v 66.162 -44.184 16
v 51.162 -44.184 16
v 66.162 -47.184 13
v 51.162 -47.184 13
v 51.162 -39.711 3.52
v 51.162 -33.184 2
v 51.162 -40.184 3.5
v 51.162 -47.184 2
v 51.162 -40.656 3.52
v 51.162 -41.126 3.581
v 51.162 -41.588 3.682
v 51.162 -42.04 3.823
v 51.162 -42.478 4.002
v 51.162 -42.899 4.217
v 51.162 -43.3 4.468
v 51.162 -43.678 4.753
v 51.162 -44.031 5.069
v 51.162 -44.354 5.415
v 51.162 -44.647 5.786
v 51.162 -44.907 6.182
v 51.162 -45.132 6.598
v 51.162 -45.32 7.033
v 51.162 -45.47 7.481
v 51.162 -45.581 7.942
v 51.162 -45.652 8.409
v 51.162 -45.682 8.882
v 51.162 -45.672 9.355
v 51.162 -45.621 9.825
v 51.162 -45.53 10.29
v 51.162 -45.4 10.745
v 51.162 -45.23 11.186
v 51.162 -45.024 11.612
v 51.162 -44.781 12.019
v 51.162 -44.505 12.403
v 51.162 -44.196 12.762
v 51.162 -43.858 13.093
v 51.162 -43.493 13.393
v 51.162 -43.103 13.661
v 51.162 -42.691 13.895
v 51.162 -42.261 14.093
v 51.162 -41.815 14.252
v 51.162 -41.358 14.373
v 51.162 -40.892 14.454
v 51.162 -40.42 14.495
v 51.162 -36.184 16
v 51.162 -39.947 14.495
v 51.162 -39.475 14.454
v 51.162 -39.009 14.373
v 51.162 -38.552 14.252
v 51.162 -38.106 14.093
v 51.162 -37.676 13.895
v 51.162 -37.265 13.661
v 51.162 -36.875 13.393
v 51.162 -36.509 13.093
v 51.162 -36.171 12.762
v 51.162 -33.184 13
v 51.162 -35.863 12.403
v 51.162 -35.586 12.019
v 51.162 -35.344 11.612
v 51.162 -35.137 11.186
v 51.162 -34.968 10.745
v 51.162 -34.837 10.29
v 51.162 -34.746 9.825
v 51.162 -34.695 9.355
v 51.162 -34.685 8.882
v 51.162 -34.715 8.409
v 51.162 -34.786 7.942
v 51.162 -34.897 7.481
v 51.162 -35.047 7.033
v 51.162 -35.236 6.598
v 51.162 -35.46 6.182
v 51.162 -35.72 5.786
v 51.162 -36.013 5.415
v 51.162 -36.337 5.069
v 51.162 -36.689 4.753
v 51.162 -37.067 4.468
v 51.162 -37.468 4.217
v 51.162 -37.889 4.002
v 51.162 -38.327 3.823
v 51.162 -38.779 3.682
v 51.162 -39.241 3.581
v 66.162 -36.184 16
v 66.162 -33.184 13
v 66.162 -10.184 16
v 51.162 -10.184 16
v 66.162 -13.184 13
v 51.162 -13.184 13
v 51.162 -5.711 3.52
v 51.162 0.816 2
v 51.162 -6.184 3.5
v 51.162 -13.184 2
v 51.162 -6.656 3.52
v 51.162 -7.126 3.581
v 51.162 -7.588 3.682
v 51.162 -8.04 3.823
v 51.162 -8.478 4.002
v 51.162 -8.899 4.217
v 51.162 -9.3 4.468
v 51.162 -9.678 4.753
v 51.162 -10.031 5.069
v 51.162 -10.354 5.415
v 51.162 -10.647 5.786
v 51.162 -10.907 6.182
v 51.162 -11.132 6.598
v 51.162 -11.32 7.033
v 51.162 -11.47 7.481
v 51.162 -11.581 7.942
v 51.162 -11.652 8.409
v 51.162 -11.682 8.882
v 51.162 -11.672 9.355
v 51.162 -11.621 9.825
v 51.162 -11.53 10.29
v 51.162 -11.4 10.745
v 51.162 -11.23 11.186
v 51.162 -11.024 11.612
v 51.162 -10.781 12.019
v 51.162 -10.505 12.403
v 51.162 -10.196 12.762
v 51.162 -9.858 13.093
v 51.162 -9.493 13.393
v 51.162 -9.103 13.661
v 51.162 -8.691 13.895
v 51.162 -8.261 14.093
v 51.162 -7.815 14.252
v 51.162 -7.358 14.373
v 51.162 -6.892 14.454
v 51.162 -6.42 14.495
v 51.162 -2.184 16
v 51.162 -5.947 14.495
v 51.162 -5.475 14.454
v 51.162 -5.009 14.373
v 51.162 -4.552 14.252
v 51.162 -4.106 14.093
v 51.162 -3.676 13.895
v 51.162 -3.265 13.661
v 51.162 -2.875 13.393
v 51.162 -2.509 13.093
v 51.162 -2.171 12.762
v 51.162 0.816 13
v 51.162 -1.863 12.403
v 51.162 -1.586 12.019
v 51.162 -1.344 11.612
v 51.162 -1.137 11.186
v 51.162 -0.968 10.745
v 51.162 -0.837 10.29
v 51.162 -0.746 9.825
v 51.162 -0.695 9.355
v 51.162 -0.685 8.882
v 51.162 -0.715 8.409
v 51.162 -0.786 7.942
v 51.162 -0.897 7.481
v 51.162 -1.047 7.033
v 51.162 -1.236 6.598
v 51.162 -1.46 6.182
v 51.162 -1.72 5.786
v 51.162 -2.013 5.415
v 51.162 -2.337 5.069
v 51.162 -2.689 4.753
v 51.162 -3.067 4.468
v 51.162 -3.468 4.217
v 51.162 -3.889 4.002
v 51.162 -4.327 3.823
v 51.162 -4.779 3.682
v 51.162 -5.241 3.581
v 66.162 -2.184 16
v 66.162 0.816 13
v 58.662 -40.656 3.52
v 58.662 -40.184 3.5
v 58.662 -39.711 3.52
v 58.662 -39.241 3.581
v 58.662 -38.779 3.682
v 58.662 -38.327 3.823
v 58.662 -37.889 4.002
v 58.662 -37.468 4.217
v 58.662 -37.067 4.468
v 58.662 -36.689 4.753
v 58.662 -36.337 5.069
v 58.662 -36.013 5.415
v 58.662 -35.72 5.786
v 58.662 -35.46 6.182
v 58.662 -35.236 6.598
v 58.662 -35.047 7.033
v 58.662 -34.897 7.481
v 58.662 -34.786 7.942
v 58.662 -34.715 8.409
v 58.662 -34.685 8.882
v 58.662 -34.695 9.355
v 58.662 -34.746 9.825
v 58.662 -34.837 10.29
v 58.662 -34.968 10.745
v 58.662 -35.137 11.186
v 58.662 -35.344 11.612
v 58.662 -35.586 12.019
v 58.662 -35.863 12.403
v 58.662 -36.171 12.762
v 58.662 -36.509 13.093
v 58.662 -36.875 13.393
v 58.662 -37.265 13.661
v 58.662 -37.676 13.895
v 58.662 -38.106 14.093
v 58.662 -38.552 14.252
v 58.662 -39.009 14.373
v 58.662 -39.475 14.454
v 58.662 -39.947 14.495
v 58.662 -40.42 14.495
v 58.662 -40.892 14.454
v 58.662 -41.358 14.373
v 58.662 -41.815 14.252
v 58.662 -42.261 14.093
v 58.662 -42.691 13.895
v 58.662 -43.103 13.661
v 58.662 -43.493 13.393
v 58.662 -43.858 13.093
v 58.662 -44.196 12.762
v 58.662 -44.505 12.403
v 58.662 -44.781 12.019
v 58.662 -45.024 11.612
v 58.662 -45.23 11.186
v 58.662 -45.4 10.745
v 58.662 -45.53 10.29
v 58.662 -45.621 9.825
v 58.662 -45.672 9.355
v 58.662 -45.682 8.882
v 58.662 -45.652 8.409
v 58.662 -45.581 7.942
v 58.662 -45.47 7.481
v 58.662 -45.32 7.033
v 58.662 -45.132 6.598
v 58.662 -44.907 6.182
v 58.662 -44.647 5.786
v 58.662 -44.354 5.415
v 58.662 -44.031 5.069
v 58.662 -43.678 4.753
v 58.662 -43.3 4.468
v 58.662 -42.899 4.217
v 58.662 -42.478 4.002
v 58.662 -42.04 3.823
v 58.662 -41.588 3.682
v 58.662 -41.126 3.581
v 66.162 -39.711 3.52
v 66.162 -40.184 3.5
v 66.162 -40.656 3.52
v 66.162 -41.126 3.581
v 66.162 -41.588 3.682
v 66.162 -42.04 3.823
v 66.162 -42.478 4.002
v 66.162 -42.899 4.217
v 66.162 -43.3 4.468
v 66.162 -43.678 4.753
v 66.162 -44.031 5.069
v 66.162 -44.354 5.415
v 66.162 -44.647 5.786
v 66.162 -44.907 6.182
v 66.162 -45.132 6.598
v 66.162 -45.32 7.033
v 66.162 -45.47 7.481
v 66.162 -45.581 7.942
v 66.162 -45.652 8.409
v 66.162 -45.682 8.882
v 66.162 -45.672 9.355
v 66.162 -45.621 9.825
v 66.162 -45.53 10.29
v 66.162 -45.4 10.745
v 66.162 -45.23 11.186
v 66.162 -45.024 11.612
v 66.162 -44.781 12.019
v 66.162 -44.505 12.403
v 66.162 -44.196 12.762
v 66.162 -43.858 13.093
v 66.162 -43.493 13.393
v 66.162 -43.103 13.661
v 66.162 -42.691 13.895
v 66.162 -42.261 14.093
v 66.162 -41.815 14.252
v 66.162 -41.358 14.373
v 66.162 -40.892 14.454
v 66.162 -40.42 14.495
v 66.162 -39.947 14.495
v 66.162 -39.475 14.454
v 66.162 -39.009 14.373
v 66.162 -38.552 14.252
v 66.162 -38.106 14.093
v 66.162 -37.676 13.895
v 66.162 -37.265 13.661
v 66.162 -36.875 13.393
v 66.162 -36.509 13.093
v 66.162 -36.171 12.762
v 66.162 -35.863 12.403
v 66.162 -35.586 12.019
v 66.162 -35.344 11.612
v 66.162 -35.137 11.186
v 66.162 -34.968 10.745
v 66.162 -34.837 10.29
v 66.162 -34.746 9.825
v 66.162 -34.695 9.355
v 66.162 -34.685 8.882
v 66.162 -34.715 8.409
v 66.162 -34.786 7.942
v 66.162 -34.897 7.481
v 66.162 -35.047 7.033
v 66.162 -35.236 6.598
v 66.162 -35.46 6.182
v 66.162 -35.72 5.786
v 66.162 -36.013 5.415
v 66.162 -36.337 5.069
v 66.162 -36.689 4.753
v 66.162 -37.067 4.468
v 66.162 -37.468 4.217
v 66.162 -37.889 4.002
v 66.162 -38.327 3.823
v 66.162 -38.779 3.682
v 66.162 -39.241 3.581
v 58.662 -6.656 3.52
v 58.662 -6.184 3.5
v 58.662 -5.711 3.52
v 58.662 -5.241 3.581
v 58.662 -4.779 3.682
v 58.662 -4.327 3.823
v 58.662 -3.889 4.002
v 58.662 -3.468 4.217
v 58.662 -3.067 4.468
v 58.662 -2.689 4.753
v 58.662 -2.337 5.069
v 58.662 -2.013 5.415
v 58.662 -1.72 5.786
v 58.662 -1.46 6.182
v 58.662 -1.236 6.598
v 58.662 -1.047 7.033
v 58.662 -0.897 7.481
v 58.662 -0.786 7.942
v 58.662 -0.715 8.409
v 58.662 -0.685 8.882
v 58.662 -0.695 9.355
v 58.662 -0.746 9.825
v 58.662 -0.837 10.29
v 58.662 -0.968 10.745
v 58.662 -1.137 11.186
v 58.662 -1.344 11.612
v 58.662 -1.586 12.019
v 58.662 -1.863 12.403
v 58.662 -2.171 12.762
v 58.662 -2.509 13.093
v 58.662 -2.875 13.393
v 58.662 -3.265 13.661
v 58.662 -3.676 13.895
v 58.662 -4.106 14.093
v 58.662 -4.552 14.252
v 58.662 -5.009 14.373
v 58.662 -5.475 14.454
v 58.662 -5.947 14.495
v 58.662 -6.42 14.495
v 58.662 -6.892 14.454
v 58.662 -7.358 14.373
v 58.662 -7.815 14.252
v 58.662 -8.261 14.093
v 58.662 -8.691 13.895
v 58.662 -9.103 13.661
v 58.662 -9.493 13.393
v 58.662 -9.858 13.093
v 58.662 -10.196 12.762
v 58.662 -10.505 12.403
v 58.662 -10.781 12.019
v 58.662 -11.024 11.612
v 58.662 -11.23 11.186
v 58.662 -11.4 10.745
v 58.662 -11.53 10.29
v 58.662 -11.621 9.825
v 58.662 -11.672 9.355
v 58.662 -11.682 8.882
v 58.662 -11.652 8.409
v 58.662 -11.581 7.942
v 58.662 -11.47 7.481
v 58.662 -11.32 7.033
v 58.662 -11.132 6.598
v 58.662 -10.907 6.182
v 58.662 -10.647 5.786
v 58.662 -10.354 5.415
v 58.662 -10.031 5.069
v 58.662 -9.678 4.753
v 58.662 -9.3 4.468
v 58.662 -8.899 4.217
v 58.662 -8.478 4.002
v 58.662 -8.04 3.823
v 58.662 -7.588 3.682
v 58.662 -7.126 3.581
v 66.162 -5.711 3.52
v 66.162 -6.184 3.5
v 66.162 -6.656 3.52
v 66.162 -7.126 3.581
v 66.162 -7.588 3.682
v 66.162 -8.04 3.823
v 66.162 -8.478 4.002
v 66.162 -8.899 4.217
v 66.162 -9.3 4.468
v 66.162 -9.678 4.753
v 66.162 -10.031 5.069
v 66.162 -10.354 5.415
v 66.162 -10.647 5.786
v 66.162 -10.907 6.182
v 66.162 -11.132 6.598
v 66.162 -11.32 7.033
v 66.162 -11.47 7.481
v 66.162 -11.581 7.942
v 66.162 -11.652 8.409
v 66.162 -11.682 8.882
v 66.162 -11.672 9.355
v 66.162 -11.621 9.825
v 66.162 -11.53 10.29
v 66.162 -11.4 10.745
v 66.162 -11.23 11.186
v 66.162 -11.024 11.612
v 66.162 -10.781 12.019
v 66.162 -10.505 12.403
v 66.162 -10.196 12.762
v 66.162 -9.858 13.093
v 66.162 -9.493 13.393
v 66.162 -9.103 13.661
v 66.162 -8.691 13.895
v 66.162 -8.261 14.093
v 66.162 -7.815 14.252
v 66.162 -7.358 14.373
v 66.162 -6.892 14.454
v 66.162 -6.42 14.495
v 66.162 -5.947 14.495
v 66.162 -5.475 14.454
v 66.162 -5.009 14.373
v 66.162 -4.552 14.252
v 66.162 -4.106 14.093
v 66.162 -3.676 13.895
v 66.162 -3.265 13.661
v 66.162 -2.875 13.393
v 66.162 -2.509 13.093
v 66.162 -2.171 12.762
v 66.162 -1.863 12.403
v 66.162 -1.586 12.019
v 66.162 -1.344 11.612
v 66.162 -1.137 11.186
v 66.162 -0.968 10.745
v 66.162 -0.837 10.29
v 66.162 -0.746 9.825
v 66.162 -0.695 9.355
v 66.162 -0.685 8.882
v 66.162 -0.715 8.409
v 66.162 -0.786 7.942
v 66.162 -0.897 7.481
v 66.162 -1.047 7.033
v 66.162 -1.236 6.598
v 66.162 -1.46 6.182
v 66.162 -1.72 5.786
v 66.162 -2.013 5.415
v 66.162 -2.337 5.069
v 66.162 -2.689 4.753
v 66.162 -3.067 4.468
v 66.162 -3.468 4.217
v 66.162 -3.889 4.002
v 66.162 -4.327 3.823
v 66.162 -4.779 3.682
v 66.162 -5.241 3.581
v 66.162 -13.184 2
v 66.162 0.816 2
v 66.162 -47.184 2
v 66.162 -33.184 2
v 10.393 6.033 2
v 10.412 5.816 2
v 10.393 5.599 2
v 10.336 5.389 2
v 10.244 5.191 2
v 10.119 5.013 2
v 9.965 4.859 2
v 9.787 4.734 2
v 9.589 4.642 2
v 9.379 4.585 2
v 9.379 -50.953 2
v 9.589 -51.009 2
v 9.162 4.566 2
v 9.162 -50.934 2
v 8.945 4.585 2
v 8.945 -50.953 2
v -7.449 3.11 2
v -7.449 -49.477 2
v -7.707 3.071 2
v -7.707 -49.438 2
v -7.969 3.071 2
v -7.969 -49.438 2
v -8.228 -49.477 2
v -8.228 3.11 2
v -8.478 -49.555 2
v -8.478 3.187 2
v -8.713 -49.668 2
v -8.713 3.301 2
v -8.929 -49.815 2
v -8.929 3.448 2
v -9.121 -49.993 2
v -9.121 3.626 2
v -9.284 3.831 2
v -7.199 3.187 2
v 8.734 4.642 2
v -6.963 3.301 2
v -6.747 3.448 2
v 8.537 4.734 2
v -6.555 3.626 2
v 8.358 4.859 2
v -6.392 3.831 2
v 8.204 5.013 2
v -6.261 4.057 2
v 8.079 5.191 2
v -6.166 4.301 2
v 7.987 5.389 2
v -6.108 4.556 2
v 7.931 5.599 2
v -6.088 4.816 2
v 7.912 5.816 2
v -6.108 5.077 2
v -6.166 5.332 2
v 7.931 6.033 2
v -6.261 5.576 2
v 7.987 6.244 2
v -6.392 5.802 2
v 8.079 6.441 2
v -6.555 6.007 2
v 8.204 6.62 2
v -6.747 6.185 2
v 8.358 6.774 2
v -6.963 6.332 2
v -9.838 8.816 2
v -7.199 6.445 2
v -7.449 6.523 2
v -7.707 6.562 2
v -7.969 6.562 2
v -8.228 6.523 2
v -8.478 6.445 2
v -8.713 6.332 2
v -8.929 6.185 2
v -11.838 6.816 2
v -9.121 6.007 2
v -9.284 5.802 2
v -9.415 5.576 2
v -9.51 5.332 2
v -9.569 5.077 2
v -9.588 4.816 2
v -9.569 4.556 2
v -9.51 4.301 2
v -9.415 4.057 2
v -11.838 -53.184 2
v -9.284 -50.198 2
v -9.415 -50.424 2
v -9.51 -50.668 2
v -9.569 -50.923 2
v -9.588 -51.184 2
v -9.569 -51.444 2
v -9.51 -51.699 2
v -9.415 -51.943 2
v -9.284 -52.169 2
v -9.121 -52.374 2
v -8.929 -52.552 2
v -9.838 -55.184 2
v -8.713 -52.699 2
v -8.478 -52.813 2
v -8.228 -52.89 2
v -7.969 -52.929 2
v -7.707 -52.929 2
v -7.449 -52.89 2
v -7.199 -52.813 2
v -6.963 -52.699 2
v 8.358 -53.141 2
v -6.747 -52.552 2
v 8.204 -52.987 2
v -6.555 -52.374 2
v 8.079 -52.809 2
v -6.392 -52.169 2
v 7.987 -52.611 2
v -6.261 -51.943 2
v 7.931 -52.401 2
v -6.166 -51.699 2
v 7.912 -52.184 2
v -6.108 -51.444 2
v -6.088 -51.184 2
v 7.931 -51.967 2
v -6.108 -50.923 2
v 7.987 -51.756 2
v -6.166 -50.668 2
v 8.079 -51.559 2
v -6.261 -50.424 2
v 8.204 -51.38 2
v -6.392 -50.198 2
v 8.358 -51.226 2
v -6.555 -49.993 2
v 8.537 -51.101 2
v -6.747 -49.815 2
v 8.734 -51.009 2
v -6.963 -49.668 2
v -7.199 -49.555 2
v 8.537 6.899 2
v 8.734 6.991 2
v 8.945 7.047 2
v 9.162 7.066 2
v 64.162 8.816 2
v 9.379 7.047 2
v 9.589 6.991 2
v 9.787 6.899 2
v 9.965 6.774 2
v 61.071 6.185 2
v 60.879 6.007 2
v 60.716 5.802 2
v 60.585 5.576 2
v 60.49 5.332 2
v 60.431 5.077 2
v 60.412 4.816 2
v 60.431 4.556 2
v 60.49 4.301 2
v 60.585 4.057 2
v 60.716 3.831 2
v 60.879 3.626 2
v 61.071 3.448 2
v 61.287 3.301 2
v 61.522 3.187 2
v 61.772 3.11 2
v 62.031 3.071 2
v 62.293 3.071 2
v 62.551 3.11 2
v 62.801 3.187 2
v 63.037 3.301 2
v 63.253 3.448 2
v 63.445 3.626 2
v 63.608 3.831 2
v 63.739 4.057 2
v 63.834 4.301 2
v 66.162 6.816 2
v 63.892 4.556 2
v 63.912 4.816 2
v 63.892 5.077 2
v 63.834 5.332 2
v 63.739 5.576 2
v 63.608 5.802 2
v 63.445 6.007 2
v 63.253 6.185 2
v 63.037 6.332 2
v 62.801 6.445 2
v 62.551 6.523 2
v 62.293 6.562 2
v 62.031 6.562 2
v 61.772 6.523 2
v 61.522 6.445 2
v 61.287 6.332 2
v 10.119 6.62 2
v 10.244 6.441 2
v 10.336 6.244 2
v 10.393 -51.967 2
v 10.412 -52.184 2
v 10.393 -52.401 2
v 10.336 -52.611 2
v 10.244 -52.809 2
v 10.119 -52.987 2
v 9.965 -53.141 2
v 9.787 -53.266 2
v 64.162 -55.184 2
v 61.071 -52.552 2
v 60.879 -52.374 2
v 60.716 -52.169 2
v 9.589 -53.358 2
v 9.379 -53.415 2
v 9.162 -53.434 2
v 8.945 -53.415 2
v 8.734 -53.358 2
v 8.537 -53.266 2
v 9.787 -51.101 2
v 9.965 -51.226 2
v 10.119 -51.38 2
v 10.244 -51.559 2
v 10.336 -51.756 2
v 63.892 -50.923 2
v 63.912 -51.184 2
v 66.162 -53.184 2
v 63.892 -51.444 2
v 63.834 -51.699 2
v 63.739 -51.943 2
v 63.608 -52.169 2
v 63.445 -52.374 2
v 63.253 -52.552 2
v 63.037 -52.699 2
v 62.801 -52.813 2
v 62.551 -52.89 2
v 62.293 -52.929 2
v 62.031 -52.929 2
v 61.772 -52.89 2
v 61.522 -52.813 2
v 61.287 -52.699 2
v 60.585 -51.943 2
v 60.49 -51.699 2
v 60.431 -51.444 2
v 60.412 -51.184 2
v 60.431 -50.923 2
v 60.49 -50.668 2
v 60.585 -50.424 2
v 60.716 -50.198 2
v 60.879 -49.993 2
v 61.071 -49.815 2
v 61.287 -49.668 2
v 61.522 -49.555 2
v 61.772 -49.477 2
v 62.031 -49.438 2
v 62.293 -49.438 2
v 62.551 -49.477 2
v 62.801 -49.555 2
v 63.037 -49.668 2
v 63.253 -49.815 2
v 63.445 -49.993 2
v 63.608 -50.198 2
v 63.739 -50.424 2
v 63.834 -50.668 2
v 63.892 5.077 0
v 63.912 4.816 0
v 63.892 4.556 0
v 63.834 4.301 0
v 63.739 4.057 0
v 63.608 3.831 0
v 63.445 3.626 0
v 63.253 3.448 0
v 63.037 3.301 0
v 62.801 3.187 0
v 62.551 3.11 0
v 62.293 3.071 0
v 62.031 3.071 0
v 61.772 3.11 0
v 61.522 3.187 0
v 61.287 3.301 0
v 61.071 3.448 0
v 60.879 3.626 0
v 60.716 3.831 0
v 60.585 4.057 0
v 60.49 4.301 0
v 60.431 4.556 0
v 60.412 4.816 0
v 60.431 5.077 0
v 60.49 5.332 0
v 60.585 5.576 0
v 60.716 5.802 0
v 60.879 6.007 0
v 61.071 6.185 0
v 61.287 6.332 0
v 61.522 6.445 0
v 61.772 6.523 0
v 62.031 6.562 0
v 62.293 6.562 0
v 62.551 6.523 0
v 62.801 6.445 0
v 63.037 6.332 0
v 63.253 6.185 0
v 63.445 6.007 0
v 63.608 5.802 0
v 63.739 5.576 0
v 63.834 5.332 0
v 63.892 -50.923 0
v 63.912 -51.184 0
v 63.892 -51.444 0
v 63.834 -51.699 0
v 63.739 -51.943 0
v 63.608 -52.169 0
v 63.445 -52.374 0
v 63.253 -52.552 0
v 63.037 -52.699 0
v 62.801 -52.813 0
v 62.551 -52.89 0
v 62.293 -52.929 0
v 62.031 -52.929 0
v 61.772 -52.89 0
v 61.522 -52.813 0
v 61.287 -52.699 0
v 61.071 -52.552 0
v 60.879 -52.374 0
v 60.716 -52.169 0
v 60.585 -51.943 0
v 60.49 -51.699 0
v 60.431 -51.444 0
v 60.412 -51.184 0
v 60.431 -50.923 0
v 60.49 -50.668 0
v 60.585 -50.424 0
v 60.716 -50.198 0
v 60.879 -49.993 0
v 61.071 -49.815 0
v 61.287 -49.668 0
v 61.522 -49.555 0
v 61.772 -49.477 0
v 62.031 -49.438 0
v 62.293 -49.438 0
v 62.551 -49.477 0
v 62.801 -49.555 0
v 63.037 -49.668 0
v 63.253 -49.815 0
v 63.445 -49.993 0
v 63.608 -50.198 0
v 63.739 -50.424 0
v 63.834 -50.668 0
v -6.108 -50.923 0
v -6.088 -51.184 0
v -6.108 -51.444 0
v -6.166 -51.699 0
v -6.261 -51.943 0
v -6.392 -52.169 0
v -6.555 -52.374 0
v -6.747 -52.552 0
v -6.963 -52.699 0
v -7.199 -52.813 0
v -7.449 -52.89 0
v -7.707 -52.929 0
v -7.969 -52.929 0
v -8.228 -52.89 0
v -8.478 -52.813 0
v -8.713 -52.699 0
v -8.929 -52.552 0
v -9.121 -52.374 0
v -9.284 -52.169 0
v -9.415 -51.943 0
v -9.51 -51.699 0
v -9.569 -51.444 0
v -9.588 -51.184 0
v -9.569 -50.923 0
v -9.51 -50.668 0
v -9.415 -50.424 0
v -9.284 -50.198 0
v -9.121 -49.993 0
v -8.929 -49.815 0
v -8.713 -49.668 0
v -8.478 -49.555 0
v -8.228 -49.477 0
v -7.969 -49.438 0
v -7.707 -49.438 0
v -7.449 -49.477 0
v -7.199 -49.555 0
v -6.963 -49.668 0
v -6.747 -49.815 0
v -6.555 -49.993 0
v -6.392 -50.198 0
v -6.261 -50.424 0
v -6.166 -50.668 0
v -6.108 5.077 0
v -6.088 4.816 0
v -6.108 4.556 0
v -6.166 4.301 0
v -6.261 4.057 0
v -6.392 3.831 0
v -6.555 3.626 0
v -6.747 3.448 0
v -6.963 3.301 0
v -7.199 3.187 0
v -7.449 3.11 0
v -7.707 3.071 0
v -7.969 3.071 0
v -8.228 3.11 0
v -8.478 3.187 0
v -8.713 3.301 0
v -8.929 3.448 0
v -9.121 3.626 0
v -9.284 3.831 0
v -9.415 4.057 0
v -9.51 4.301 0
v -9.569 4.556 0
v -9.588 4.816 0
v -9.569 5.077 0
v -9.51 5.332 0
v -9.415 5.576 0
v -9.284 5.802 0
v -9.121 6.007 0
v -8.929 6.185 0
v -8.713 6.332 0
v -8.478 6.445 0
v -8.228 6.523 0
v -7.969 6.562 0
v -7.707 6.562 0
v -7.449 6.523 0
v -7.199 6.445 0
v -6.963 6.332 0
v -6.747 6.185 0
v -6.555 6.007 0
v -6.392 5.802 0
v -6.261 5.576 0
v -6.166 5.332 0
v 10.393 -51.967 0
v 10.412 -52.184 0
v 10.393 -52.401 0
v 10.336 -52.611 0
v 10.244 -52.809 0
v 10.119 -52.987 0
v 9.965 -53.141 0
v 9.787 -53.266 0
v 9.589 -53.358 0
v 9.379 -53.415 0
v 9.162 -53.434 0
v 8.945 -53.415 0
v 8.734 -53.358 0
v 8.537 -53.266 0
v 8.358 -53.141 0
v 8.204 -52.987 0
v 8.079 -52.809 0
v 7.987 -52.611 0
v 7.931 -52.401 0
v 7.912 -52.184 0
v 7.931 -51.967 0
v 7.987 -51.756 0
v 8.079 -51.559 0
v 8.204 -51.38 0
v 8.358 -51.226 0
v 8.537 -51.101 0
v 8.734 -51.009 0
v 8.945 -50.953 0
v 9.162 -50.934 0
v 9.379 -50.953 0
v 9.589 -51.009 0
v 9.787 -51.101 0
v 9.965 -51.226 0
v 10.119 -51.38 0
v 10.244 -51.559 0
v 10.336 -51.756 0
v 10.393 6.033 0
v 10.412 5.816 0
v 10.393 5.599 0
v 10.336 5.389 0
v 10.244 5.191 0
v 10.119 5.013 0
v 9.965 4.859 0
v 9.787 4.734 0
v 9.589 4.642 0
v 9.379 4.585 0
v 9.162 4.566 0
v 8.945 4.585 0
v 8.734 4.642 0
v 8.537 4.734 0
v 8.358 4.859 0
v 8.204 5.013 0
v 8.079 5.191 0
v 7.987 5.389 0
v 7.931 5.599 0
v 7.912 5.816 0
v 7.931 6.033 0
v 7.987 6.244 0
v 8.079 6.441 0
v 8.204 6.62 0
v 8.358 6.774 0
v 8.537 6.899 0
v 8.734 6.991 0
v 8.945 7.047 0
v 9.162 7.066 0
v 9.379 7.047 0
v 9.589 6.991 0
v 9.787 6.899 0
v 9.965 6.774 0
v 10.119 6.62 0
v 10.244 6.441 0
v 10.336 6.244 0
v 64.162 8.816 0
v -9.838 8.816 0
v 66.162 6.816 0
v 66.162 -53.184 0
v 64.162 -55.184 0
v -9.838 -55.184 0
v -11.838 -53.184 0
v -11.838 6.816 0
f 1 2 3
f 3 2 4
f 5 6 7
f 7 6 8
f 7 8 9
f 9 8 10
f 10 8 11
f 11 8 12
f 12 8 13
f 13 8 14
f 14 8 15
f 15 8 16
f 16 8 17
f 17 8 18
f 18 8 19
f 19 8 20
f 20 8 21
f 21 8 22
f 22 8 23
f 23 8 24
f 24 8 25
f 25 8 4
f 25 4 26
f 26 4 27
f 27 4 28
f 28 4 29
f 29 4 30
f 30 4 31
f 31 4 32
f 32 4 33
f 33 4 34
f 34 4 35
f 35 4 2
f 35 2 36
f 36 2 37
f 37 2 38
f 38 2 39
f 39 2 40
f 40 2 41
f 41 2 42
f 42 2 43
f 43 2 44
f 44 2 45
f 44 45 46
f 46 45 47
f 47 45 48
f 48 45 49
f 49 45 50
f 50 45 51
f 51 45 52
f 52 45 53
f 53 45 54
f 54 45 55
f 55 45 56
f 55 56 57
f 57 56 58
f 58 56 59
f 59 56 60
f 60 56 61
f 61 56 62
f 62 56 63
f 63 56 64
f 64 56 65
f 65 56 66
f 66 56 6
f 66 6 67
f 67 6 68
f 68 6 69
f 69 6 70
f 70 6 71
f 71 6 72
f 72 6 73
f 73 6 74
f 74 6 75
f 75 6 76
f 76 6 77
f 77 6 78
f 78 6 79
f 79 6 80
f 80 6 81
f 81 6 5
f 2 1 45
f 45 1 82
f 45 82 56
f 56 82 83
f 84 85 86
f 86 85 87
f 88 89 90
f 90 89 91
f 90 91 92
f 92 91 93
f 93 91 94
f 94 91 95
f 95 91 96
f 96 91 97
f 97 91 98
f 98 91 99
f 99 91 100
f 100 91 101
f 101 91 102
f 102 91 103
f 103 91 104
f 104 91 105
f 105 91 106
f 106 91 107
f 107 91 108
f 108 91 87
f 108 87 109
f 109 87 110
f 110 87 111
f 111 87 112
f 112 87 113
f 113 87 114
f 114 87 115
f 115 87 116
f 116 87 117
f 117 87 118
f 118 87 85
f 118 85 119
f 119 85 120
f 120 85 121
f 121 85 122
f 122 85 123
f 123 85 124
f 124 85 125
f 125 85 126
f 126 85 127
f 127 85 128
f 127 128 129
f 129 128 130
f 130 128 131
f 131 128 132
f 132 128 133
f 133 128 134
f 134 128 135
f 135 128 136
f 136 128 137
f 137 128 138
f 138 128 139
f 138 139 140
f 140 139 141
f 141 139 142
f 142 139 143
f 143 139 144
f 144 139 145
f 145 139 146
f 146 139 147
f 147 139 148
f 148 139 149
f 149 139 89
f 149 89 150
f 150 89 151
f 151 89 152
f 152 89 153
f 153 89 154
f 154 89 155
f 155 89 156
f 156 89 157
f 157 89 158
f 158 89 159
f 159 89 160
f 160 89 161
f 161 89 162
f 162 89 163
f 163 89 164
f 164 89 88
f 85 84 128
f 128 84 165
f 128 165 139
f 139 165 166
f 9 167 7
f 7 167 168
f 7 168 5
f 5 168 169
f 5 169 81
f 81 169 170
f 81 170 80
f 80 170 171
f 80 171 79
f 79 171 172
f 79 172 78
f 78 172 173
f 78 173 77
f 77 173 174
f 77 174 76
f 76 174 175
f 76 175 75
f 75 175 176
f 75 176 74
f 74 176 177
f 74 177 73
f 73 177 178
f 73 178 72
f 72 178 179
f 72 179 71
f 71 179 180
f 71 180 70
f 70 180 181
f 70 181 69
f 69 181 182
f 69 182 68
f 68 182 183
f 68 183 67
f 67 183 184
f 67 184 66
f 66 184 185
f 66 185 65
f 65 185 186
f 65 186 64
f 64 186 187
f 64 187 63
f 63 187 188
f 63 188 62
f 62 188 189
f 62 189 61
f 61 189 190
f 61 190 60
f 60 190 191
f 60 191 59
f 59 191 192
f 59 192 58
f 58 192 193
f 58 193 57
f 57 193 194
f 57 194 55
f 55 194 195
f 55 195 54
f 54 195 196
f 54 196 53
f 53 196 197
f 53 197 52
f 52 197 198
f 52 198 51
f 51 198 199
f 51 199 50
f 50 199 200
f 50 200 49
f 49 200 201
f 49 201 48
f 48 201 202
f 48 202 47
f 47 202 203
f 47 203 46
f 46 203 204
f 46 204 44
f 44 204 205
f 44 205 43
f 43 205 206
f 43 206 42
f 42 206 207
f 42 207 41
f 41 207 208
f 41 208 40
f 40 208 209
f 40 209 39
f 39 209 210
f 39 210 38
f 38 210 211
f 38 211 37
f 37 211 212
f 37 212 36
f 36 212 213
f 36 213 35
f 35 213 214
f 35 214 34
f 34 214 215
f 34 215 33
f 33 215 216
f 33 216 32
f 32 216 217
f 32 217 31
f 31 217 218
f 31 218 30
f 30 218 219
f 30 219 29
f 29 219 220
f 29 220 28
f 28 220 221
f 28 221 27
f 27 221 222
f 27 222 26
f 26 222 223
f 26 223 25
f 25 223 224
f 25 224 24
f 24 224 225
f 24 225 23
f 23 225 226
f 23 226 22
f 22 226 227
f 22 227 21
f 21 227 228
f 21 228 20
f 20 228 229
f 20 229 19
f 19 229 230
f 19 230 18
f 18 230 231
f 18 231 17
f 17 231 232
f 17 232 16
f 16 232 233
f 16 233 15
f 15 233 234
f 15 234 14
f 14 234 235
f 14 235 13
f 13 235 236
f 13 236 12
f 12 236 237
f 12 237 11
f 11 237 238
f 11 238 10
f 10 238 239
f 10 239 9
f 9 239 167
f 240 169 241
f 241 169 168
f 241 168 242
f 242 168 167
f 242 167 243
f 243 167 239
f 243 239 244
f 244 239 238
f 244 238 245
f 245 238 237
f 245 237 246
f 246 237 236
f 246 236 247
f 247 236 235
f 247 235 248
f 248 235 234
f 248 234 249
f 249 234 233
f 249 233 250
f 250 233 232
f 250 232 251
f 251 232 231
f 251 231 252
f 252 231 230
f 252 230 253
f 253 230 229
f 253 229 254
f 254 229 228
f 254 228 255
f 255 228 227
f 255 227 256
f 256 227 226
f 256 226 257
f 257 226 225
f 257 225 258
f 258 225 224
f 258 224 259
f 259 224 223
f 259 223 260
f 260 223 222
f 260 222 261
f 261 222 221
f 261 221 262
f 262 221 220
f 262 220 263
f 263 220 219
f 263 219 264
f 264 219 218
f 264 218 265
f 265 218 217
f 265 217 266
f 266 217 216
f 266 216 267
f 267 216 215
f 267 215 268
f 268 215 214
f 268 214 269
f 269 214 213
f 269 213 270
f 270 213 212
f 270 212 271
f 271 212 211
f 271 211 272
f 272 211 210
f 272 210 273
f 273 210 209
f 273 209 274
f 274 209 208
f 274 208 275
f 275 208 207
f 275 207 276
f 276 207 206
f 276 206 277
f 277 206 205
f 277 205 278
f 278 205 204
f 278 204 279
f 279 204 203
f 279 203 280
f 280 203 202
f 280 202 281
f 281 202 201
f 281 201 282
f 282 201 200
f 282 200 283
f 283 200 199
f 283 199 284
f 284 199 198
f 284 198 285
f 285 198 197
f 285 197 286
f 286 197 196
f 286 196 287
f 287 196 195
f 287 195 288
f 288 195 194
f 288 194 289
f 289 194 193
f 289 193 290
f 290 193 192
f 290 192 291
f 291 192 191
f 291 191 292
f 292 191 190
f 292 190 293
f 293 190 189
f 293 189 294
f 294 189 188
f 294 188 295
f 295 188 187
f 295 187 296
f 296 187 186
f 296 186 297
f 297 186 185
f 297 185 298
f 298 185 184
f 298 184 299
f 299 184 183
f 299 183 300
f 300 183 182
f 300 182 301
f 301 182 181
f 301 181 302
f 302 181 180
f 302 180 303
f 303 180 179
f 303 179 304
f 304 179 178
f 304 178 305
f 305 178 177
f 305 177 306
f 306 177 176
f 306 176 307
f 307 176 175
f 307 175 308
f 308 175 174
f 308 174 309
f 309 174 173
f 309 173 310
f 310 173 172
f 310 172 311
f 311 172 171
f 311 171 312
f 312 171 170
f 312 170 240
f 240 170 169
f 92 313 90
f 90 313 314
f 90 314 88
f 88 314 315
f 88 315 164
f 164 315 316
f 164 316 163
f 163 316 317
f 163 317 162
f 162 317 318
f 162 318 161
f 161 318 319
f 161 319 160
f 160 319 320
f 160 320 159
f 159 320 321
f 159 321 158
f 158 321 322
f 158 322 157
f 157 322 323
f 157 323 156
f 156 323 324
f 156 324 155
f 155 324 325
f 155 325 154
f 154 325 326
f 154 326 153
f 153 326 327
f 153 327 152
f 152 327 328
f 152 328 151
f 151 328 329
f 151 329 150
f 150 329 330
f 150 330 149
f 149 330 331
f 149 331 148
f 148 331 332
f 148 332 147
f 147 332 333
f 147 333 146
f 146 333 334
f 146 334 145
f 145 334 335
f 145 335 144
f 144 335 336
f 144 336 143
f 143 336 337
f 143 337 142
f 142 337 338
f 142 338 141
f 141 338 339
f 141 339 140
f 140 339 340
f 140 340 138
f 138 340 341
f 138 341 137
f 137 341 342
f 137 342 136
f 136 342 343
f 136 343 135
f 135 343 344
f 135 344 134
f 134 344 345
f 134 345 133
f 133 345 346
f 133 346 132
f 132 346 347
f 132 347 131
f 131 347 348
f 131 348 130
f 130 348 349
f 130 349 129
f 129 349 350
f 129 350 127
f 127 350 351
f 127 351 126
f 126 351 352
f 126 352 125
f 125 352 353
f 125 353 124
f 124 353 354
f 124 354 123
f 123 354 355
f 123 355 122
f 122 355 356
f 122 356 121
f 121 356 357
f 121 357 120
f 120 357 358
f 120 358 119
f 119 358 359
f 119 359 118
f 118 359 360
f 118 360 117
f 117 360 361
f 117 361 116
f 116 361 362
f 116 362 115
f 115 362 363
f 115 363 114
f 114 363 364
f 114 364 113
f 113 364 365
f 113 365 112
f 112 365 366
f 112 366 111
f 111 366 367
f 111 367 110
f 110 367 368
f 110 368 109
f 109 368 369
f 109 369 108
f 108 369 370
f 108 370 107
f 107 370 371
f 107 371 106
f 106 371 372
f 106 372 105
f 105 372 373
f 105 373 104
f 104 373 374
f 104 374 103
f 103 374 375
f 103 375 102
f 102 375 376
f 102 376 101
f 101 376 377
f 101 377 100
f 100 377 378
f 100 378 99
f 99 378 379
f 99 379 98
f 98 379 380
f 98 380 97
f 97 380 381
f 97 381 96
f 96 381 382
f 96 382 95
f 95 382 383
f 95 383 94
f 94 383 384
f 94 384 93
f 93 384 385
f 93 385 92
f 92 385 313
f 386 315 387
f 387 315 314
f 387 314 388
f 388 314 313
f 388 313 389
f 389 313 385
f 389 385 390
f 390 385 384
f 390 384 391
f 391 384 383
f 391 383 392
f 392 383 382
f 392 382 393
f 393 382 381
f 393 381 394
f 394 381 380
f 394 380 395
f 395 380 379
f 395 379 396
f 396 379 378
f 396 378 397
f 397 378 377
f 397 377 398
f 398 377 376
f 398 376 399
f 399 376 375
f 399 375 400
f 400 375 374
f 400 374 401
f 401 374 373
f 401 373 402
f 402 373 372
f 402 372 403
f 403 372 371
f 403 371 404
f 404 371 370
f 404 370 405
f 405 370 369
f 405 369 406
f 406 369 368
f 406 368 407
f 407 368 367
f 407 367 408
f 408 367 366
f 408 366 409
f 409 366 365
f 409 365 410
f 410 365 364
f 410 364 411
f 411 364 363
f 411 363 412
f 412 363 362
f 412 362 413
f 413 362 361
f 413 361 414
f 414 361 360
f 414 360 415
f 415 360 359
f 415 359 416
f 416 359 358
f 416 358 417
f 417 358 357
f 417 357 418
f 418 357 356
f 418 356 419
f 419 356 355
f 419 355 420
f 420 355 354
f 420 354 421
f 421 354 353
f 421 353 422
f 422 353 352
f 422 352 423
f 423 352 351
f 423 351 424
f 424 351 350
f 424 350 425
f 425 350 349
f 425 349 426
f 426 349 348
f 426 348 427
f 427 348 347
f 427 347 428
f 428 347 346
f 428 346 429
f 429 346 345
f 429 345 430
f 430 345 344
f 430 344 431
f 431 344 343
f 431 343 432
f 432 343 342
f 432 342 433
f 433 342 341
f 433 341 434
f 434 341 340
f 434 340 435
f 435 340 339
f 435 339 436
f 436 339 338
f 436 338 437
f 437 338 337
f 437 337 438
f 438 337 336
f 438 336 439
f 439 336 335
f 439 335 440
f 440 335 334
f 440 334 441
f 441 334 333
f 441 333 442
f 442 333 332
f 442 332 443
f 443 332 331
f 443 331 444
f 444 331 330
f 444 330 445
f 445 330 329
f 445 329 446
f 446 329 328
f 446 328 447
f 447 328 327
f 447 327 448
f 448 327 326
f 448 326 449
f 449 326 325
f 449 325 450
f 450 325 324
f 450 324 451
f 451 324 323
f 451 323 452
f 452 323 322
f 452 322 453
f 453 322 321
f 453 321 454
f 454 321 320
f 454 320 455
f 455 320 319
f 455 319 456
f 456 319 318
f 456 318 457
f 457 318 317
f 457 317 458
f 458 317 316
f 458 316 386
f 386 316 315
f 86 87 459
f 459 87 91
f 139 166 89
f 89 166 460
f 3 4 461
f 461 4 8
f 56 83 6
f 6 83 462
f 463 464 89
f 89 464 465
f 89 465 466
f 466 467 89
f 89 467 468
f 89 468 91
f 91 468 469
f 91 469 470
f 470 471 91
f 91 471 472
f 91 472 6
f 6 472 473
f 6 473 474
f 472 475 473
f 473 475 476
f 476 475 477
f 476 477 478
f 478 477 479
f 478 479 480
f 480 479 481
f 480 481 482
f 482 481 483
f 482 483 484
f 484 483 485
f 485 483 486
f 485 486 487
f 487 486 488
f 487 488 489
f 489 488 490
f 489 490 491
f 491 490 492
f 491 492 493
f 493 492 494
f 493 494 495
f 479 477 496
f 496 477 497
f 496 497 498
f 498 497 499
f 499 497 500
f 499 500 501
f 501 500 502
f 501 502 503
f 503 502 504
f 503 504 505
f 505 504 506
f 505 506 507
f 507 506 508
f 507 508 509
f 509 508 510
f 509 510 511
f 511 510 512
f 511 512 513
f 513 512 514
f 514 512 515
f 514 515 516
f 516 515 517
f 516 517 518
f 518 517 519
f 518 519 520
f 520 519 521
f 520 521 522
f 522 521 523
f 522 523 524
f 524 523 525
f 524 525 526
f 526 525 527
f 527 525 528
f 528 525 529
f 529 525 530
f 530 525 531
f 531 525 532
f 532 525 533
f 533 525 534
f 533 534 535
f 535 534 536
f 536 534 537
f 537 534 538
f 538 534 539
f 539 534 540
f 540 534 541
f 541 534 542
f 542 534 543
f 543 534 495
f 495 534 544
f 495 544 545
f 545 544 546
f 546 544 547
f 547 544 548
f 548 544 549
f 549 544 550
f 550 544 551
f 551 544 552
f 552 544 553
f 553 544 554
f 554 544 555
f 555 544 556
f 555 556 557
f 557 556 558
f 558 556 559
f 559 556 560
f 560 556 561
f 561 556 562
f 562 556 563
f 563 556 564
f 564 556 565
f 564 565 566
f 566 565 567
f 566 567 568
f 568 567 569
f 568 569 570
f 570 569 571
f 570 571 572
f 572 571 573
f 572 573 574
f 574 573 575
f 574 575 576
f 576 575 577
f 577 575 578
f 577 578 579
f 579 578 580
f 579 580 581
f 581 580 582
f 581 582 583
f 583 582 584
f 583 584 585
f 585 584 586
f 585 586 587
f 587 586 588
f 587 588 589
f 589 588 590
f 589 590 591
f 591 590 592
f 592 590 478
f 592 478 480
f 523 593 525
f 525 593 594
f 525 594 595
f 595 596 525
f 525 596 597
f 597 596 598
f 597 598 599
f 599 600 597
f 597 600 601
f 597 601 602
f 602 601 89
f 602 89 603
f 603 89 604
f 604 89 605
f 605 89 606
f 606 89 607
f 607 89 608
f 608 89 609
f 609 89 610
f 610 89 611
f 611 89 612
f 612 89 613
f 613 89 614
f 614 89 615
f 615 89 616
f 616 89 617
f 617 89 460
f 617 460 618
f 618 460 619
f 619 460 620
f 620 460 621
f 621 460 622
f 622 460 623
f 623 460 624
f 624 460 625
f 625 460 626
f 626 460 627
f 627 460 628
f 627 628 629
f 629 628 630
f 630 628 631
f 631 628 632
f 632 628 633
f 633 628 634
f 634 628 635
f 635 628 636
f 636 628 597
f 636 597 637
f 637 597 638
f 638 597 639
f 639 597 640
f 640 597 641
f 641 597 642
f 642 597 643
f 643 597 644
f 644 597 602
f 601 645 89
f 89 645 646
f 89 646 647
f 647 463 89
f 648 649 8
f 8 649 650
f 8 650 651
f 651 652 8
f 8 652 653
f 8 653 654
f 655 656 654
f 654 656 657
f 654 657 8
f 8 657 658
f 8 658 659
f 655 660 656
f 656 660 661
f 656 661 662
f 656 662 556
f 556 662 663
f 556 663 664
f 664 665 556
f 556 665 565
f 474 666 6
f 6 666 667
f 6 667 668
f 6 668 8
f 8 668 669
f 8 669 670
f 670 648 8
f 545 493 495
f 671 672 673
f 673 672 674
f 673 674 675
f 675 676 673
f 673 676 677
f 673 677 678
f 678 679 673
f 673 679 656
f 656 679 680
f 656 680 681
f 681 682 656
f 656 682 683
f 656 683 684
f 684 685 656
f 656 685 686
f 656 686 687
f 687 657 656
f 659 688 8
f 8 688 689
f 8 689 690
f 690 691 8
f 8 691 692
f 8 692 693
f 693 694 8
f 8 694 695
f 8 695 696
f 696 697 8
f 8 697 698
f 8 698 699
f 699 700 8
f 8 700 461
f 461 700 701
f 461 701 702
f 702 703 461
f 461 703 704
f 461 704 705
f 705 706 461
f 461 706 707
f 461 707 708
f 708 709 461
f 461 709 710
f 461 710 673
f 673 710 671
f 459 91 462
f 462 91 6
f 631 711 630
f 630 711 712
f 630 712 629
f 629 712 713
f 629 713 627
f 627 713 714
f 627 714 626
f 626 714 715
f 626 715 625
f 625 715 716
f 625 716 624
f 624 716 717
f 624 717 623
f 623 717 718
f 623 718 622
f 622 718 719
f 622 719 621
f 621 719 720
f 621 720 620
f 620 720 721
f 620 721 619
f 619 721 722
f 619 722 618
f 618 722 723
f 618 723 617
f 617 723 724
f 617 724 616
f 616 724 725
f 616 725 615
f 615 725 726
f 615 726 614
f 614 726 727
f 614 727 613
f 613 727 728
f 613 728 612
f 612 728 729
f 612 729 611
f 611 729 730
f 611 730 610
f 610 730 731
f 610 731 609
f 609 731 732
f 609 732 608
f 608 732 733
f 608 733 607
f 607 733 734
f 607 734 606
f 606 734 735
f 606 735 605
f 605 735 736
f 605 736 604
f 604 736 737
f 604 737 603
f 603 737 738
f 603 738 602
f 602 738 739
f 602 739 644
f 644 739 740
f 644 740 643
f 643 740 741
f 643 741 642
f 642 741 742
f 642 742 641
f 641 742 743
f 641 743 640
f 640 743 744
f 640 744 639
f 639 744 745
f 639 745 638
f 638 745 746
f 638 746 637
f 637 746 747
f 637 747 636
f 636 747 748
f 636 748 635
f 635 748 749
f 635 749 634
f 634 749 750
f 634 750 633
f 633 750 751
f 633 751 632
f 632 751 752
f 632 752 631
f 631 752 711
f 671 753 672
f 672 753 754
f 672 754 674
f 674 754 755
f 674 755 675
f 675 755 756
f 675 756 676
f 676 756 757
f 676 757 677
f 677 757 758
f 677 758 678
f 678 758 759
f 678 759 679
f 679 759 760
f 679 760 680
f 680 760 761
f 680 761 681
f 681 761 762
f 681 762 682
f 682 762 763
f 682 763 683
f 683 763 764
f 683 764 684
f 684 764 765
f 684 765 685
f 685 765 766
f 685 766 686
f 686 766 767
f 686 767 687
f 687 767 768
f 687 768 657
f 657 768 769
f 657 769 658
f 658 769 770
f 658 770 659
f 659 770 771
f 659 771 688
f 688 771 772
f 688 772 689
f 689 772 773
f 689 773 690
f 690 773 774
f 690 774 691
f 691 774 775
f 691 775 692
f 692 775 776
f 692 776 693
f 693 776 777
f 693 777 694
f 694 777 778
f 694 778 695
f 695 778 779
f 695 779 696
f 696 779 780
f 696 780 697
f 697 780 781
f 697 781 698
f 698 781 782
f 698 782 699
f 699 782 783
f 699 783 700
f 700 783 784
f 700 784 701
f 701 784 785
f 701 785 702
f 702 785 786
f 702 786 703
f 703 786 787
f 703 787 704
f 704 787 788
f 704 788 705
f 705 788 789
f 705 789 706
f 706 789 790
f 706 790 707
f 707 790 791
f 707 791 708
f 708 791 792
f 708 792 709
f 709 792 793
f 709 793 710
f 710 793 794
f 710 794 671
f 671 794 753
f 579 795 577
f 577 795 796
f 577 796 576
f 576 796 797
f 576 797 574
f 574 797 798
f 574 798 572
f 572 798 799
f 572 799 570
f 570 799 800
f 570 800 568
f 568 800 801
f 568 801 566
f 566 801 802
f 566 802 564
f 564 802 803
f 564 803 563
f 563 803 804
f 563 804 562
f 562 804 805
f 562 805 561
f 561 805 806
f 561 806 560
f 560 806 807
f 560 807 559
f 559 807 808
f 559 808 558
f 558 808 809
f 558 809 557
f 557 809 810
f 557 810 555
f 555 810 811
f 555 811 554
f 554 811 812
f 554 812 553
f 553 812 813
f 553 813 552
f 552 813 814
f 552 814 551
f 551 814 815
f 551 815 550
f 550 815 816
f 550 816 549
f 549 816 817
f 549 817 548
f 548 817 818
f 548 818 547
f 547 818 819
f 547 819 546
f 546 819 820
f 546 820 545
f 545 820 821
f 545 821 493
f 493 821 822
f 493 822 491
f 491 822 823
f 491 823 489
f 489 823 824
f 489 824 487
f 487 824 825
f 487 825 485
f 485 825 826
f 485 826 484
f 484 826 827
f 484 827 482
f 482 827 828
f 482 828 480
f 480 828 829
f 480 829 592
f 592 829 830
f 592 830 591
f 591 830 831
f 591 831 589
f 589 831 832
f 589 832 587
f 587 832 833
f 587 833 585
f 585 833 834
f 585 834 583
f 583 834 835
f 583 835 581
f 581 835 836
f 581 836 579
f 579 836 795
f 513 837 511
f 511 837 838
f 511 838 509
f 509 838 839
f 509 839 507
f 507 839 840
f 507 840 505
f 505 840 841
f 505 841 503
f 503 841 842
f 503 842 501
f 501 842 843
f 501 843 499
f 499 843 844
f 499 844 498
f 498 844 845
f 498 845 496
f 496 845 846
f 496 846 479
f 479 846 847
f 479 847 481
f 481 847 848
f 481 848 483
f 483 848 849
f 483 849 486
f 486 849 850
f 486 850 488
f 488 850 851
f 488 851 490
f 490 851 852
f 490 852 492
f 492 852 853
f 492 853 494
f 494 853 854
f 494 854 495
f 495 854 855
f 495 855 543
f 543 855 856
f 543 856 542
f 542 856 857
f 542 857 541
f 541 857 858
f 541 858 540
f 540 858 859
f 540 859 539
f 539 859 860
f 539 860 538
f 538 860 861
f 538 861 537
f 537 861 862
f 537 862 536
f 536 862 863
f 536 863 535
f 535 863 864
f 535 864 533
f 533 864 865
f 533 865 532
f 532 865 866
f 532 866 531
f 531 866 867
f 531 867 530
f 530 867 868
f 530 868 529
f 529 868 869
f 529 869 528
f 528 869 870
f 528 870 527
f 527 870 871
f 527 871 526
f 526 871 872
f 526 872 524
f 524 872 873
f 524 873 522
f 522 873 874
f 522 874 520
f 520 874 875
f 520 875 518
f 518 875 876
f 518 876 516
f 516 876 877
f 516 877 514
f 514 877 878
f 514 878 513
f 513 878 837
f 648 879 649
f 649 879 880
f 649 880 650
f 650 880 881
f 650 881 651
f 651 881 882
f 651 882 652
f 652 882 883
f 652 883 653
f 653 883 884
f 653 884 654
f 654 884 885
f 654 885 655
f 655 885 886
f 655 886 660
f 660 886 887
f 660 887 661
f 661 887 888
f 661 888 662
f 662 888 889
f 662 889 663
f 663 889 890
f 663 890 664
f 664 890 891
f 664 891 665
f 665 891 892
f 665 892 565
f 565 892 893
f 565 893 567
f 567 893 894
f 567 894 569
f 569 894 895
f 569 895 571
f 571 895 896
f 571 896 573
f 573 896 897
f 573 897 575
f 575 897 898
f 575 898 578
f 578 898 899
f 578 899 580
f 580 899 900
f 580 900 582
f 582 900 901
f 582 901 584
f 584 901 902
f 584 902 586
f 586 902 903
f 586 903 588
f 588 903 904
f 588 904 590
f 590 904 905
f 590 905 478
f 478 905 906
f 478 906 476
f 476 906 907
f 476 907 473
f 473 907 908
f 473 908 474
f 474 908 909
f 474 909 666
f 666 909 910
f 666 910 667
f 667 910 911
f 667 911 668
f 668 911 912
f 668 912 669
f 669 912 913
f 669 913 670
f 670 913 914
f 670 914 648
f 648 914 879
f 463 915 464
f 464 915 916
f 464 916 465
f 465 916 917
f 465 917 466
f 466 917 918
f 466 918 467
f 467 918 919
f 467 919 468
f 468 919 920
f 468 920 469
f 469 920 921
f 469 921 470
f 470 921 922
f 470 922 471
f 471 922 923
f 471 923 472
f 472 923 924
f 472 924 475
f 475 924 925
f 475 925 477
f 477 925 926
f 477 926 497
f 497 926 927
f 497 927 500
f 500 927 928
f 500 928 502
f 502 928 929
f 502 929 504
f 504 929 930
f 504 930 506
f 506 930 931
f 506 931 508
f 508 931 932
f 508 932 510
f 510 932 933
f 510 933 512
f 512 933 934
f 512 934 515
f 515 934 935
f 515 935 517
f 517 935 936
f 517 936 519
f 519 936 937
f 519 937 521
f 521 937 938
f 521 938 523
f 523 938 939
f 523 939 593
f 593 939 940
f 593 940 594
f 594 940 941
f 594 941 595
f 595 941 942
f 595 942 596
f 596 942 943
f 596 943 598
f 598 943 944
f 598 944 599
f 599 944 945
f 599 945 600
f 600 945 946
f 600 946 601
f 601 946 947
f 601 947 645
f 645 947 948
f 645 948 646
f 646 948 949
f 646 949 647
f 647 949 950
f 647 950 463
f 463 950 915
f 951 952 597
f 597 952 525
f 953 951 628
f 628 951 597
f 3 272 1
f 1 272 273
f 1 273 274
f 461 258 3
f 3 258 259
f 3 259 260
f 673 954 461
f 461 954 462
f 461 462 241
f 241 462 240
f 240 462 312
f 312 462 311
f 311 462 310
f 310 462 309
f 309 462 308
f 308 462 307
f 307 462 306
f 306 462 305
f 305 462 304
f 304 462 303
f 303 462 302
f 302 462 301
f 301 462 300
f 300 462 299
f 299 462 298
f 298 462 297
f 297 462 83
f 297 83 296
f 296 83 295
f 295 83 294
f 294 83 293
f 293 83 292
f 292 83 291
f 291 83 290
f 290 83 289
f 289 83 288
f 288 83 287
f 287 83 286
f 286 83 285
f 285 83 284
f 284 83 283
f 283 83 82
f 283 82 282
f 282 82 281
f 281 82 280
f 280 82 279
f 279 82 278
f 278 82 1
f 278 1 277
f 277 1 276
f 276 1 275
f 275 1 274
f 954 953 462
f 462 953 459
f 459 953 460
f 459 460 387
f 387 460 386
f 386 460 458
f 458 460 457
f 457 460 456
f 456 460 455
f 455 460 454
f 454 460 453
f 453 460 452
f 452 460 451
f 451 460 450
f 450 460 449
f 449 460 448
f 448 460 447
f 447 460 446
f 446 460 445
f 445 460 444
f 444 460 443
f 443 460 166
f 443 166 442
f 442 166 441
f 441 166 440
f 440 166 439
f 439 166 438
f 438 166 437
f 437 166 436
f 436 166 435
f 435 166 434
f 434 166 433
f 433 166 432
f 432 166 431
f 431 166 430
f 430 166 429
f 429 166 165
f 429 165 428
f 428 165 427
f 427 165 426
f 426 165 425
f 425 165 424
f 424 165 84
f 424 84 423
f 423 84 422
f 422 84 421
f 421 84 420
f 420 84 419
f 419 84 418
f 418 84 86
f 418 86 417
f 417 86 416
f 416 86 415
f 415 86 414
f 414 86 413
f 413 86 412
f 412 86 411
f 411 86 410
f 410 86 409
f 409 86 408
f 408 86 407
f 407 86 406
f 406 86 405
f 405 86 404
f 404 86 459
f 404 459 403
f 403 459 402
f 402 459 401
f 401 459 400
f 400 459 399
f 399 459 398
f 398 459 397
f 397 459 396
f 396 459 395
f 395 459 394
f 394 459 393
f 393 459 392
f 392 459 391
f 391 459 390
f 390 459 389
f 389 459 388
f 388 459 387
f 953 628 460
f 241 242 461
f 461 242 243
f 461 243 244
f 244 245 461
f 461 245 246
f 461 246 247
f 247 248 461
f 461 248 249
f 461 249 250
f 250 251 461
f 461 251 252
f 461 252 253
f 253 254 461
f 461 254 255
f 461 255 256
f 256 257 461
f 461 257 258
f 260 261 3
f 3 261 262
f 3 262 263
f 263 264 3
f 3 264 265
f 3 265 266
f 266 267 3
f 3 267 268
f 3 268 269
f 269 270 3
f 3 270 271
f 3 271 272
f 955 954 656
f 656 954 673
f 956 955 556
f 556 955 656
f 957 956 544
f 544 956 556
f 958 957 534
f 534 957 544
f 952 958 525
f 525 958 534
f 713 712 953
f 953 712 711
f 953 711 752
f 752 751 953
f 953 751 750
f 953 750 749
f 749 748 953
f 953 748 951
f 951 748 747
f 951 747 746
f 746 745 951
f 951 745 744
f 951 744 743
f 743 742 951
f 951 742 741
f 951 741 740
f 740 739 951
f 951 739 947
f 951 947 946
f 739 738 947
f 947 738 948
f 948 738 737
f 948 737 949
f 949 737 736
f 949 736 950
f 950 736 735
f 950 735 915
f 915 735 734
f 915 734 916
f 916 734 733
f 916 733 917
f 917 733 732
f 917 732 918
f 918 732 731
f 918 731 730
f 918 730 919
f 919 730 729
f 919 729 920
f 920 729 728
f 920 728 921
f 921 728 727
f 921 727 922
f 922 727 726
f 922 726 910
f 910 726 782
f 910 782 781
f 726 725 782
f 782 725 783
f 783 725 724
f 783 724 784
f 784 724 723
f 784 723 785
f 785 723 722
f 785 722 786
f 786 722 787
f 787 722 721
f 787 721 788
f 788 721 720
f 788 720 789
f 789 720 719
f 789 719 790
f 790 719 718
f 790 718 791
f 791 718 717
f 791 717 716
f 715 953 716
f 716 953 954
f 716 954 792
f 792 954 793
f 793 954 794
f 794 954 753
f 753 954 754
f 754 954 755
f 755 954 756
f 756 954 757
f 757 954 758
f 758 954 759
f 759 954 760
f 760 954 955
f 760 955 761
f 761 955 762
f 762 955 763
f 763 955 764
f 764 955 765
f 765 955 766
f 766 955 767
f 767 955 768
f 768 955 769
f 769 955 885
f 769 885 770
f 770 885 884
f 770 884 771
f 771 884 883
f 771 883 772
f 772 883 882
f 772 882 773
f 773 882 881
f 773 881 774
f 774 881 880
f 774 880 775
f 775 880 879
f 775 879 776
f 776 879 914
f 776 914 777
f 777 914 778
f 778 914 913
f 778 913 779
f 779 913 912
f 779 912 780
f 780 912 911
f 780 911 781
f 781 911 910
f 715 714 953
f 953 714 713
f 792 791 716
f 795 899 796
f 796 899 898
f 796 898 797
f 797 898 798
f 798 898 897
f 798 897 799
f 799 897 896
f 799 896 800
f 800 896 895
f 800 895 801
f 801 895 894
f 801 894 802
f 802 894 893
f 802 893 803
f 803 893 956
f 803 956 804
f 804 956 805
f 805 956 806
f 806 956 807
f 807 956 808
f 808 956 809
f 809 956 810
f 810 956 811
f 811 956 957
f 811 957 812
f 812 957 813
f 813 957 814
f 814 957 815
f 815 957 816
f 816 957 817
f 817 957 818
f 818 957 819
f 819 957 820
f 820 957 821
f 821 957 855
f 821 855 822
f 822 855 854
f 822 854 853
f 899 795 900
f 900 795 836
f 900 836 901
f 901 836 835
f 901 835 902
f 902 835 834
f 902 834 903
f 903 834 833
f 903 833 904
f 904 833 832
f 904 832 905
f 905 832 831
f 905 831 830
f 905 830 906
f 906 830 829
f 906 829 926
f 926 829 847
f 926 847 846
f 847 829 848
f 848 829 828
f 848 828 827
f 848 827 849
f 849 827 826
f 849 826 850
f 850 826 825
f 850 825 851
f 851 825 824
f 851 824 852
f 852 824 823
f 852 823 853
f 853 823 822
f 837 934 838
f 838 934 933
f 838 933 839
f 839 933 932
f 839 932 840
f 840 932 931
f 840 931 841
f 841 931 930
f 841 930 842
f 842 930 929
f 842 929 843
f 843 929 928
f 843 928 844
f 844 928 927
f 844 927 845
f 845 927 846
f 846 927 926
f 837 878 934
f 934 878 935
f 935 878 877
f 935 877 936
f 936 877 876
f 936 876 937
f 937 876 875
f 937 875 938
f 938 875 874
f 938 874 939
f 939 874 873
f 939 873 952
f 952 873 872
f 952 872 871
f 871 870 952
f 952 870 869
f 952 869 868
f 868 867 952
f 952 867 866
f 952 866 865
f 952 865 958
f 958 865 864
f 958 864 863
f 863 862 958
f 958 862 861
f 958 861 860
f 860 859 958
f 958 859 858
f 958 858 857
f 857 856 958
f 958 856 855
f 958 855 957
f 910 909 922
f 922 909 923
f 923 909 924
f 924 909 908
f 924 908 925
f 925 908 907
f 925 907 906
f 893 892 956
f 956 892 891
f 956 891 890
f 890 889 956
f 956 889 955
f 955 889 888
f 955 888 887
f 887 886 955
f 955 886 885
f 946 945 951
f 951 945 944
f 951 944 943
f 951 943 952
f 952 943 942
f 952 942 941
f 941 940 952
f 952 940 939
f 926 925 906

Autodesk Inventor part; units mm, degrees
ref_plane "YZ Plane" through (0, 0, 0) normal (1, 0, 0) x (0, 1, 0)
ref_plane "XZ Plane" through (0, 0, 0) normal (0, 1, 0) x (-1, 0, 0)
ref_plane "XY Plane" through (0, 0, 0) normal (0, 0, 1) x (1, 0, 0)
sketch "Sketch1" plane through (0, 0, 0) normal (0, 0, 1) x (1, 0, 0)
  line L0 (-9.8382, 8.8164) -> (64.1618, 8.8164)
  line L1 (66.1618, 6.8164) -> (66.1618, -53.1836)
  line L2 (64.1618, -55.1836) -> (-9.8382, -55.1836)
  line L3 (-11.8382, -53.1836) -> (-11.8382, 6.8164)
  line L4 (-9.8382, 8.8164) -> (-11.8382, 6.8164)
  line L5 (64.1618, 8.8164) -> (66.1618, 6.8164)
  line L6 (66.1618, -53.1836) -> (64.1618, -55.1836)
  line L7 (-11.8382, -53.1836) -> (-9.8382, -55.1836)
  circle A0 centre (9.1618, 5.8164) radius 1.25
  circle A1 centre (9.1618, -52.1836) radius 1.25
  circle A2 centre (-7.8382, 4.8164) radius 1.75
  circle A3 centre (-7.8382, -51.1836) radius 1.75
  circle A4 centre (62.1618, -51.1836) radius 1.75
  circle A5 centre (62.1618, 4.8164) radius 1.75
  point P0 (0, 0)
  point P1 (-11.8382, 8.8164)
  point P2 (66.1618, -55.1836)
  point P3 (66.1618, 8.8164)
  point P4 (-11.8382, -55.1836)
  dimension "d0" = 78
  dimension "d1" = 64
  dimension "d2" = 2
  dimension "d3" = 2
  dimension "d4" = 2
  dimension "d5" = 2
  dimension "d6" = 2
  dimension "d7" = 2
  dimension "d8" = 2
  dimension "d9" = 2
  dimension "d10" = 2.5
  dimension "d11" = 21
  dimension "d12" = 3
  dimension "d13" = 2.5
  dimension "d14" = 3
  dimension "d15" = 21
  dimension "d16" = 3.5
  dimension "d17" = 4
  dimension "d18" = 4
  dimension "d19" = 3.5
  dimension "d20" = 4
  dimension "d21" = 4
  dimension "d22" = 3.5
  dimension "d23" = 4
  dimension "d24" = 4
  dimension "d25" = 3.5
  dimension "d26" = 4
  dimension "d27" = 4
extrude "Extrusion1" add sketch "Sketch1" along normal blind 2
sketch "Sketch2" plane through (0, 0, 2) normal (0, 0, 1) x (1, 0, 0)
  line L0 (66.1618, -53.1836) -> (66.1618, 6.8164) projected
  line L1 (66.1618, 0.8164) -> (51.1618, 0.8164)
  line L2 (51.1618, 0.8164) -> (51.1618, -13.1836)
  line L3 (51.1618, -13.1836) -> (66.1618, -13.1836)
  line L4 (66.1618, -13.1836) -> (66.1618, 0.8164)
  line L5 (64.1618, 8.8164) -> (-9.8382, 8.8164) projected
  line L6 (66.1618, -47.1836) -> (51.1618, -47.1836)
  line L7 (51.1618, -47.1836) -> (51.1618, -33.1836)
  line L8 (51.1618, -33.1836) -> (66.1618, -33.1836)
  line L9 (66.1618, -33.1836) -> (66.1618, -47.1836)
  line L10 (-9.8382, -55.1836) -> (64.1618, -55.1836) projected
  point P0 (0, 0)
  dimension "d30" = 15
  dimension "d31" = 14
  dimension "d32" = 8
  dimension "d33" = 14
  dimension "d34" = 8
extrude "Extrusion2" add sketch "Sketch2" along normal blind 14
sketch "Sketch3" plane through (66.1618, -53.1836, 0) normal (1, 0, 0) x (0, 0, -1)
  circle A0 centre (-9, 13) radius 5.5
  line L0 (-2, 6) -> (-16, 6) projected
  line L1 (-16, 6) -> (-16, 20) projected
  circle A1 centre (-9, 47) radius 5.5
  line L2 (-16, 40) -> (-16, 54) projected
  line L3 (-2, 40) -> (-16, 40) projected
  point P0 (0, 53.1836)
  dimension "d37" = 11
  dimension "d38" = 7
  dimension "d39" = 7
  dimension "d40" = 11
  dimension "d41" = 7
  dimension "d42" = 7
extrude "Extrusion3" cut sketch "Sketch3" against normal up to surface (15 mm away)
chamfer "Chamfer1" distance 3 angle 45 4 edges at (58.6618, 0.8164, 16) (58.6618, -13.1836, 16) (58.6618, -33.1836, 16) (58.6618, -47.1836, 16)
equation "\"d3\" = d2"
equation "\"d4\" = d2"
equation "\"d5\" = d4"
equation "\"d6\" = d2"
equation "\"d7\" = d6"
equation "\"d8\" = d2"
equation "\"d9\" = d8"
properties part number "powersupplymount"
